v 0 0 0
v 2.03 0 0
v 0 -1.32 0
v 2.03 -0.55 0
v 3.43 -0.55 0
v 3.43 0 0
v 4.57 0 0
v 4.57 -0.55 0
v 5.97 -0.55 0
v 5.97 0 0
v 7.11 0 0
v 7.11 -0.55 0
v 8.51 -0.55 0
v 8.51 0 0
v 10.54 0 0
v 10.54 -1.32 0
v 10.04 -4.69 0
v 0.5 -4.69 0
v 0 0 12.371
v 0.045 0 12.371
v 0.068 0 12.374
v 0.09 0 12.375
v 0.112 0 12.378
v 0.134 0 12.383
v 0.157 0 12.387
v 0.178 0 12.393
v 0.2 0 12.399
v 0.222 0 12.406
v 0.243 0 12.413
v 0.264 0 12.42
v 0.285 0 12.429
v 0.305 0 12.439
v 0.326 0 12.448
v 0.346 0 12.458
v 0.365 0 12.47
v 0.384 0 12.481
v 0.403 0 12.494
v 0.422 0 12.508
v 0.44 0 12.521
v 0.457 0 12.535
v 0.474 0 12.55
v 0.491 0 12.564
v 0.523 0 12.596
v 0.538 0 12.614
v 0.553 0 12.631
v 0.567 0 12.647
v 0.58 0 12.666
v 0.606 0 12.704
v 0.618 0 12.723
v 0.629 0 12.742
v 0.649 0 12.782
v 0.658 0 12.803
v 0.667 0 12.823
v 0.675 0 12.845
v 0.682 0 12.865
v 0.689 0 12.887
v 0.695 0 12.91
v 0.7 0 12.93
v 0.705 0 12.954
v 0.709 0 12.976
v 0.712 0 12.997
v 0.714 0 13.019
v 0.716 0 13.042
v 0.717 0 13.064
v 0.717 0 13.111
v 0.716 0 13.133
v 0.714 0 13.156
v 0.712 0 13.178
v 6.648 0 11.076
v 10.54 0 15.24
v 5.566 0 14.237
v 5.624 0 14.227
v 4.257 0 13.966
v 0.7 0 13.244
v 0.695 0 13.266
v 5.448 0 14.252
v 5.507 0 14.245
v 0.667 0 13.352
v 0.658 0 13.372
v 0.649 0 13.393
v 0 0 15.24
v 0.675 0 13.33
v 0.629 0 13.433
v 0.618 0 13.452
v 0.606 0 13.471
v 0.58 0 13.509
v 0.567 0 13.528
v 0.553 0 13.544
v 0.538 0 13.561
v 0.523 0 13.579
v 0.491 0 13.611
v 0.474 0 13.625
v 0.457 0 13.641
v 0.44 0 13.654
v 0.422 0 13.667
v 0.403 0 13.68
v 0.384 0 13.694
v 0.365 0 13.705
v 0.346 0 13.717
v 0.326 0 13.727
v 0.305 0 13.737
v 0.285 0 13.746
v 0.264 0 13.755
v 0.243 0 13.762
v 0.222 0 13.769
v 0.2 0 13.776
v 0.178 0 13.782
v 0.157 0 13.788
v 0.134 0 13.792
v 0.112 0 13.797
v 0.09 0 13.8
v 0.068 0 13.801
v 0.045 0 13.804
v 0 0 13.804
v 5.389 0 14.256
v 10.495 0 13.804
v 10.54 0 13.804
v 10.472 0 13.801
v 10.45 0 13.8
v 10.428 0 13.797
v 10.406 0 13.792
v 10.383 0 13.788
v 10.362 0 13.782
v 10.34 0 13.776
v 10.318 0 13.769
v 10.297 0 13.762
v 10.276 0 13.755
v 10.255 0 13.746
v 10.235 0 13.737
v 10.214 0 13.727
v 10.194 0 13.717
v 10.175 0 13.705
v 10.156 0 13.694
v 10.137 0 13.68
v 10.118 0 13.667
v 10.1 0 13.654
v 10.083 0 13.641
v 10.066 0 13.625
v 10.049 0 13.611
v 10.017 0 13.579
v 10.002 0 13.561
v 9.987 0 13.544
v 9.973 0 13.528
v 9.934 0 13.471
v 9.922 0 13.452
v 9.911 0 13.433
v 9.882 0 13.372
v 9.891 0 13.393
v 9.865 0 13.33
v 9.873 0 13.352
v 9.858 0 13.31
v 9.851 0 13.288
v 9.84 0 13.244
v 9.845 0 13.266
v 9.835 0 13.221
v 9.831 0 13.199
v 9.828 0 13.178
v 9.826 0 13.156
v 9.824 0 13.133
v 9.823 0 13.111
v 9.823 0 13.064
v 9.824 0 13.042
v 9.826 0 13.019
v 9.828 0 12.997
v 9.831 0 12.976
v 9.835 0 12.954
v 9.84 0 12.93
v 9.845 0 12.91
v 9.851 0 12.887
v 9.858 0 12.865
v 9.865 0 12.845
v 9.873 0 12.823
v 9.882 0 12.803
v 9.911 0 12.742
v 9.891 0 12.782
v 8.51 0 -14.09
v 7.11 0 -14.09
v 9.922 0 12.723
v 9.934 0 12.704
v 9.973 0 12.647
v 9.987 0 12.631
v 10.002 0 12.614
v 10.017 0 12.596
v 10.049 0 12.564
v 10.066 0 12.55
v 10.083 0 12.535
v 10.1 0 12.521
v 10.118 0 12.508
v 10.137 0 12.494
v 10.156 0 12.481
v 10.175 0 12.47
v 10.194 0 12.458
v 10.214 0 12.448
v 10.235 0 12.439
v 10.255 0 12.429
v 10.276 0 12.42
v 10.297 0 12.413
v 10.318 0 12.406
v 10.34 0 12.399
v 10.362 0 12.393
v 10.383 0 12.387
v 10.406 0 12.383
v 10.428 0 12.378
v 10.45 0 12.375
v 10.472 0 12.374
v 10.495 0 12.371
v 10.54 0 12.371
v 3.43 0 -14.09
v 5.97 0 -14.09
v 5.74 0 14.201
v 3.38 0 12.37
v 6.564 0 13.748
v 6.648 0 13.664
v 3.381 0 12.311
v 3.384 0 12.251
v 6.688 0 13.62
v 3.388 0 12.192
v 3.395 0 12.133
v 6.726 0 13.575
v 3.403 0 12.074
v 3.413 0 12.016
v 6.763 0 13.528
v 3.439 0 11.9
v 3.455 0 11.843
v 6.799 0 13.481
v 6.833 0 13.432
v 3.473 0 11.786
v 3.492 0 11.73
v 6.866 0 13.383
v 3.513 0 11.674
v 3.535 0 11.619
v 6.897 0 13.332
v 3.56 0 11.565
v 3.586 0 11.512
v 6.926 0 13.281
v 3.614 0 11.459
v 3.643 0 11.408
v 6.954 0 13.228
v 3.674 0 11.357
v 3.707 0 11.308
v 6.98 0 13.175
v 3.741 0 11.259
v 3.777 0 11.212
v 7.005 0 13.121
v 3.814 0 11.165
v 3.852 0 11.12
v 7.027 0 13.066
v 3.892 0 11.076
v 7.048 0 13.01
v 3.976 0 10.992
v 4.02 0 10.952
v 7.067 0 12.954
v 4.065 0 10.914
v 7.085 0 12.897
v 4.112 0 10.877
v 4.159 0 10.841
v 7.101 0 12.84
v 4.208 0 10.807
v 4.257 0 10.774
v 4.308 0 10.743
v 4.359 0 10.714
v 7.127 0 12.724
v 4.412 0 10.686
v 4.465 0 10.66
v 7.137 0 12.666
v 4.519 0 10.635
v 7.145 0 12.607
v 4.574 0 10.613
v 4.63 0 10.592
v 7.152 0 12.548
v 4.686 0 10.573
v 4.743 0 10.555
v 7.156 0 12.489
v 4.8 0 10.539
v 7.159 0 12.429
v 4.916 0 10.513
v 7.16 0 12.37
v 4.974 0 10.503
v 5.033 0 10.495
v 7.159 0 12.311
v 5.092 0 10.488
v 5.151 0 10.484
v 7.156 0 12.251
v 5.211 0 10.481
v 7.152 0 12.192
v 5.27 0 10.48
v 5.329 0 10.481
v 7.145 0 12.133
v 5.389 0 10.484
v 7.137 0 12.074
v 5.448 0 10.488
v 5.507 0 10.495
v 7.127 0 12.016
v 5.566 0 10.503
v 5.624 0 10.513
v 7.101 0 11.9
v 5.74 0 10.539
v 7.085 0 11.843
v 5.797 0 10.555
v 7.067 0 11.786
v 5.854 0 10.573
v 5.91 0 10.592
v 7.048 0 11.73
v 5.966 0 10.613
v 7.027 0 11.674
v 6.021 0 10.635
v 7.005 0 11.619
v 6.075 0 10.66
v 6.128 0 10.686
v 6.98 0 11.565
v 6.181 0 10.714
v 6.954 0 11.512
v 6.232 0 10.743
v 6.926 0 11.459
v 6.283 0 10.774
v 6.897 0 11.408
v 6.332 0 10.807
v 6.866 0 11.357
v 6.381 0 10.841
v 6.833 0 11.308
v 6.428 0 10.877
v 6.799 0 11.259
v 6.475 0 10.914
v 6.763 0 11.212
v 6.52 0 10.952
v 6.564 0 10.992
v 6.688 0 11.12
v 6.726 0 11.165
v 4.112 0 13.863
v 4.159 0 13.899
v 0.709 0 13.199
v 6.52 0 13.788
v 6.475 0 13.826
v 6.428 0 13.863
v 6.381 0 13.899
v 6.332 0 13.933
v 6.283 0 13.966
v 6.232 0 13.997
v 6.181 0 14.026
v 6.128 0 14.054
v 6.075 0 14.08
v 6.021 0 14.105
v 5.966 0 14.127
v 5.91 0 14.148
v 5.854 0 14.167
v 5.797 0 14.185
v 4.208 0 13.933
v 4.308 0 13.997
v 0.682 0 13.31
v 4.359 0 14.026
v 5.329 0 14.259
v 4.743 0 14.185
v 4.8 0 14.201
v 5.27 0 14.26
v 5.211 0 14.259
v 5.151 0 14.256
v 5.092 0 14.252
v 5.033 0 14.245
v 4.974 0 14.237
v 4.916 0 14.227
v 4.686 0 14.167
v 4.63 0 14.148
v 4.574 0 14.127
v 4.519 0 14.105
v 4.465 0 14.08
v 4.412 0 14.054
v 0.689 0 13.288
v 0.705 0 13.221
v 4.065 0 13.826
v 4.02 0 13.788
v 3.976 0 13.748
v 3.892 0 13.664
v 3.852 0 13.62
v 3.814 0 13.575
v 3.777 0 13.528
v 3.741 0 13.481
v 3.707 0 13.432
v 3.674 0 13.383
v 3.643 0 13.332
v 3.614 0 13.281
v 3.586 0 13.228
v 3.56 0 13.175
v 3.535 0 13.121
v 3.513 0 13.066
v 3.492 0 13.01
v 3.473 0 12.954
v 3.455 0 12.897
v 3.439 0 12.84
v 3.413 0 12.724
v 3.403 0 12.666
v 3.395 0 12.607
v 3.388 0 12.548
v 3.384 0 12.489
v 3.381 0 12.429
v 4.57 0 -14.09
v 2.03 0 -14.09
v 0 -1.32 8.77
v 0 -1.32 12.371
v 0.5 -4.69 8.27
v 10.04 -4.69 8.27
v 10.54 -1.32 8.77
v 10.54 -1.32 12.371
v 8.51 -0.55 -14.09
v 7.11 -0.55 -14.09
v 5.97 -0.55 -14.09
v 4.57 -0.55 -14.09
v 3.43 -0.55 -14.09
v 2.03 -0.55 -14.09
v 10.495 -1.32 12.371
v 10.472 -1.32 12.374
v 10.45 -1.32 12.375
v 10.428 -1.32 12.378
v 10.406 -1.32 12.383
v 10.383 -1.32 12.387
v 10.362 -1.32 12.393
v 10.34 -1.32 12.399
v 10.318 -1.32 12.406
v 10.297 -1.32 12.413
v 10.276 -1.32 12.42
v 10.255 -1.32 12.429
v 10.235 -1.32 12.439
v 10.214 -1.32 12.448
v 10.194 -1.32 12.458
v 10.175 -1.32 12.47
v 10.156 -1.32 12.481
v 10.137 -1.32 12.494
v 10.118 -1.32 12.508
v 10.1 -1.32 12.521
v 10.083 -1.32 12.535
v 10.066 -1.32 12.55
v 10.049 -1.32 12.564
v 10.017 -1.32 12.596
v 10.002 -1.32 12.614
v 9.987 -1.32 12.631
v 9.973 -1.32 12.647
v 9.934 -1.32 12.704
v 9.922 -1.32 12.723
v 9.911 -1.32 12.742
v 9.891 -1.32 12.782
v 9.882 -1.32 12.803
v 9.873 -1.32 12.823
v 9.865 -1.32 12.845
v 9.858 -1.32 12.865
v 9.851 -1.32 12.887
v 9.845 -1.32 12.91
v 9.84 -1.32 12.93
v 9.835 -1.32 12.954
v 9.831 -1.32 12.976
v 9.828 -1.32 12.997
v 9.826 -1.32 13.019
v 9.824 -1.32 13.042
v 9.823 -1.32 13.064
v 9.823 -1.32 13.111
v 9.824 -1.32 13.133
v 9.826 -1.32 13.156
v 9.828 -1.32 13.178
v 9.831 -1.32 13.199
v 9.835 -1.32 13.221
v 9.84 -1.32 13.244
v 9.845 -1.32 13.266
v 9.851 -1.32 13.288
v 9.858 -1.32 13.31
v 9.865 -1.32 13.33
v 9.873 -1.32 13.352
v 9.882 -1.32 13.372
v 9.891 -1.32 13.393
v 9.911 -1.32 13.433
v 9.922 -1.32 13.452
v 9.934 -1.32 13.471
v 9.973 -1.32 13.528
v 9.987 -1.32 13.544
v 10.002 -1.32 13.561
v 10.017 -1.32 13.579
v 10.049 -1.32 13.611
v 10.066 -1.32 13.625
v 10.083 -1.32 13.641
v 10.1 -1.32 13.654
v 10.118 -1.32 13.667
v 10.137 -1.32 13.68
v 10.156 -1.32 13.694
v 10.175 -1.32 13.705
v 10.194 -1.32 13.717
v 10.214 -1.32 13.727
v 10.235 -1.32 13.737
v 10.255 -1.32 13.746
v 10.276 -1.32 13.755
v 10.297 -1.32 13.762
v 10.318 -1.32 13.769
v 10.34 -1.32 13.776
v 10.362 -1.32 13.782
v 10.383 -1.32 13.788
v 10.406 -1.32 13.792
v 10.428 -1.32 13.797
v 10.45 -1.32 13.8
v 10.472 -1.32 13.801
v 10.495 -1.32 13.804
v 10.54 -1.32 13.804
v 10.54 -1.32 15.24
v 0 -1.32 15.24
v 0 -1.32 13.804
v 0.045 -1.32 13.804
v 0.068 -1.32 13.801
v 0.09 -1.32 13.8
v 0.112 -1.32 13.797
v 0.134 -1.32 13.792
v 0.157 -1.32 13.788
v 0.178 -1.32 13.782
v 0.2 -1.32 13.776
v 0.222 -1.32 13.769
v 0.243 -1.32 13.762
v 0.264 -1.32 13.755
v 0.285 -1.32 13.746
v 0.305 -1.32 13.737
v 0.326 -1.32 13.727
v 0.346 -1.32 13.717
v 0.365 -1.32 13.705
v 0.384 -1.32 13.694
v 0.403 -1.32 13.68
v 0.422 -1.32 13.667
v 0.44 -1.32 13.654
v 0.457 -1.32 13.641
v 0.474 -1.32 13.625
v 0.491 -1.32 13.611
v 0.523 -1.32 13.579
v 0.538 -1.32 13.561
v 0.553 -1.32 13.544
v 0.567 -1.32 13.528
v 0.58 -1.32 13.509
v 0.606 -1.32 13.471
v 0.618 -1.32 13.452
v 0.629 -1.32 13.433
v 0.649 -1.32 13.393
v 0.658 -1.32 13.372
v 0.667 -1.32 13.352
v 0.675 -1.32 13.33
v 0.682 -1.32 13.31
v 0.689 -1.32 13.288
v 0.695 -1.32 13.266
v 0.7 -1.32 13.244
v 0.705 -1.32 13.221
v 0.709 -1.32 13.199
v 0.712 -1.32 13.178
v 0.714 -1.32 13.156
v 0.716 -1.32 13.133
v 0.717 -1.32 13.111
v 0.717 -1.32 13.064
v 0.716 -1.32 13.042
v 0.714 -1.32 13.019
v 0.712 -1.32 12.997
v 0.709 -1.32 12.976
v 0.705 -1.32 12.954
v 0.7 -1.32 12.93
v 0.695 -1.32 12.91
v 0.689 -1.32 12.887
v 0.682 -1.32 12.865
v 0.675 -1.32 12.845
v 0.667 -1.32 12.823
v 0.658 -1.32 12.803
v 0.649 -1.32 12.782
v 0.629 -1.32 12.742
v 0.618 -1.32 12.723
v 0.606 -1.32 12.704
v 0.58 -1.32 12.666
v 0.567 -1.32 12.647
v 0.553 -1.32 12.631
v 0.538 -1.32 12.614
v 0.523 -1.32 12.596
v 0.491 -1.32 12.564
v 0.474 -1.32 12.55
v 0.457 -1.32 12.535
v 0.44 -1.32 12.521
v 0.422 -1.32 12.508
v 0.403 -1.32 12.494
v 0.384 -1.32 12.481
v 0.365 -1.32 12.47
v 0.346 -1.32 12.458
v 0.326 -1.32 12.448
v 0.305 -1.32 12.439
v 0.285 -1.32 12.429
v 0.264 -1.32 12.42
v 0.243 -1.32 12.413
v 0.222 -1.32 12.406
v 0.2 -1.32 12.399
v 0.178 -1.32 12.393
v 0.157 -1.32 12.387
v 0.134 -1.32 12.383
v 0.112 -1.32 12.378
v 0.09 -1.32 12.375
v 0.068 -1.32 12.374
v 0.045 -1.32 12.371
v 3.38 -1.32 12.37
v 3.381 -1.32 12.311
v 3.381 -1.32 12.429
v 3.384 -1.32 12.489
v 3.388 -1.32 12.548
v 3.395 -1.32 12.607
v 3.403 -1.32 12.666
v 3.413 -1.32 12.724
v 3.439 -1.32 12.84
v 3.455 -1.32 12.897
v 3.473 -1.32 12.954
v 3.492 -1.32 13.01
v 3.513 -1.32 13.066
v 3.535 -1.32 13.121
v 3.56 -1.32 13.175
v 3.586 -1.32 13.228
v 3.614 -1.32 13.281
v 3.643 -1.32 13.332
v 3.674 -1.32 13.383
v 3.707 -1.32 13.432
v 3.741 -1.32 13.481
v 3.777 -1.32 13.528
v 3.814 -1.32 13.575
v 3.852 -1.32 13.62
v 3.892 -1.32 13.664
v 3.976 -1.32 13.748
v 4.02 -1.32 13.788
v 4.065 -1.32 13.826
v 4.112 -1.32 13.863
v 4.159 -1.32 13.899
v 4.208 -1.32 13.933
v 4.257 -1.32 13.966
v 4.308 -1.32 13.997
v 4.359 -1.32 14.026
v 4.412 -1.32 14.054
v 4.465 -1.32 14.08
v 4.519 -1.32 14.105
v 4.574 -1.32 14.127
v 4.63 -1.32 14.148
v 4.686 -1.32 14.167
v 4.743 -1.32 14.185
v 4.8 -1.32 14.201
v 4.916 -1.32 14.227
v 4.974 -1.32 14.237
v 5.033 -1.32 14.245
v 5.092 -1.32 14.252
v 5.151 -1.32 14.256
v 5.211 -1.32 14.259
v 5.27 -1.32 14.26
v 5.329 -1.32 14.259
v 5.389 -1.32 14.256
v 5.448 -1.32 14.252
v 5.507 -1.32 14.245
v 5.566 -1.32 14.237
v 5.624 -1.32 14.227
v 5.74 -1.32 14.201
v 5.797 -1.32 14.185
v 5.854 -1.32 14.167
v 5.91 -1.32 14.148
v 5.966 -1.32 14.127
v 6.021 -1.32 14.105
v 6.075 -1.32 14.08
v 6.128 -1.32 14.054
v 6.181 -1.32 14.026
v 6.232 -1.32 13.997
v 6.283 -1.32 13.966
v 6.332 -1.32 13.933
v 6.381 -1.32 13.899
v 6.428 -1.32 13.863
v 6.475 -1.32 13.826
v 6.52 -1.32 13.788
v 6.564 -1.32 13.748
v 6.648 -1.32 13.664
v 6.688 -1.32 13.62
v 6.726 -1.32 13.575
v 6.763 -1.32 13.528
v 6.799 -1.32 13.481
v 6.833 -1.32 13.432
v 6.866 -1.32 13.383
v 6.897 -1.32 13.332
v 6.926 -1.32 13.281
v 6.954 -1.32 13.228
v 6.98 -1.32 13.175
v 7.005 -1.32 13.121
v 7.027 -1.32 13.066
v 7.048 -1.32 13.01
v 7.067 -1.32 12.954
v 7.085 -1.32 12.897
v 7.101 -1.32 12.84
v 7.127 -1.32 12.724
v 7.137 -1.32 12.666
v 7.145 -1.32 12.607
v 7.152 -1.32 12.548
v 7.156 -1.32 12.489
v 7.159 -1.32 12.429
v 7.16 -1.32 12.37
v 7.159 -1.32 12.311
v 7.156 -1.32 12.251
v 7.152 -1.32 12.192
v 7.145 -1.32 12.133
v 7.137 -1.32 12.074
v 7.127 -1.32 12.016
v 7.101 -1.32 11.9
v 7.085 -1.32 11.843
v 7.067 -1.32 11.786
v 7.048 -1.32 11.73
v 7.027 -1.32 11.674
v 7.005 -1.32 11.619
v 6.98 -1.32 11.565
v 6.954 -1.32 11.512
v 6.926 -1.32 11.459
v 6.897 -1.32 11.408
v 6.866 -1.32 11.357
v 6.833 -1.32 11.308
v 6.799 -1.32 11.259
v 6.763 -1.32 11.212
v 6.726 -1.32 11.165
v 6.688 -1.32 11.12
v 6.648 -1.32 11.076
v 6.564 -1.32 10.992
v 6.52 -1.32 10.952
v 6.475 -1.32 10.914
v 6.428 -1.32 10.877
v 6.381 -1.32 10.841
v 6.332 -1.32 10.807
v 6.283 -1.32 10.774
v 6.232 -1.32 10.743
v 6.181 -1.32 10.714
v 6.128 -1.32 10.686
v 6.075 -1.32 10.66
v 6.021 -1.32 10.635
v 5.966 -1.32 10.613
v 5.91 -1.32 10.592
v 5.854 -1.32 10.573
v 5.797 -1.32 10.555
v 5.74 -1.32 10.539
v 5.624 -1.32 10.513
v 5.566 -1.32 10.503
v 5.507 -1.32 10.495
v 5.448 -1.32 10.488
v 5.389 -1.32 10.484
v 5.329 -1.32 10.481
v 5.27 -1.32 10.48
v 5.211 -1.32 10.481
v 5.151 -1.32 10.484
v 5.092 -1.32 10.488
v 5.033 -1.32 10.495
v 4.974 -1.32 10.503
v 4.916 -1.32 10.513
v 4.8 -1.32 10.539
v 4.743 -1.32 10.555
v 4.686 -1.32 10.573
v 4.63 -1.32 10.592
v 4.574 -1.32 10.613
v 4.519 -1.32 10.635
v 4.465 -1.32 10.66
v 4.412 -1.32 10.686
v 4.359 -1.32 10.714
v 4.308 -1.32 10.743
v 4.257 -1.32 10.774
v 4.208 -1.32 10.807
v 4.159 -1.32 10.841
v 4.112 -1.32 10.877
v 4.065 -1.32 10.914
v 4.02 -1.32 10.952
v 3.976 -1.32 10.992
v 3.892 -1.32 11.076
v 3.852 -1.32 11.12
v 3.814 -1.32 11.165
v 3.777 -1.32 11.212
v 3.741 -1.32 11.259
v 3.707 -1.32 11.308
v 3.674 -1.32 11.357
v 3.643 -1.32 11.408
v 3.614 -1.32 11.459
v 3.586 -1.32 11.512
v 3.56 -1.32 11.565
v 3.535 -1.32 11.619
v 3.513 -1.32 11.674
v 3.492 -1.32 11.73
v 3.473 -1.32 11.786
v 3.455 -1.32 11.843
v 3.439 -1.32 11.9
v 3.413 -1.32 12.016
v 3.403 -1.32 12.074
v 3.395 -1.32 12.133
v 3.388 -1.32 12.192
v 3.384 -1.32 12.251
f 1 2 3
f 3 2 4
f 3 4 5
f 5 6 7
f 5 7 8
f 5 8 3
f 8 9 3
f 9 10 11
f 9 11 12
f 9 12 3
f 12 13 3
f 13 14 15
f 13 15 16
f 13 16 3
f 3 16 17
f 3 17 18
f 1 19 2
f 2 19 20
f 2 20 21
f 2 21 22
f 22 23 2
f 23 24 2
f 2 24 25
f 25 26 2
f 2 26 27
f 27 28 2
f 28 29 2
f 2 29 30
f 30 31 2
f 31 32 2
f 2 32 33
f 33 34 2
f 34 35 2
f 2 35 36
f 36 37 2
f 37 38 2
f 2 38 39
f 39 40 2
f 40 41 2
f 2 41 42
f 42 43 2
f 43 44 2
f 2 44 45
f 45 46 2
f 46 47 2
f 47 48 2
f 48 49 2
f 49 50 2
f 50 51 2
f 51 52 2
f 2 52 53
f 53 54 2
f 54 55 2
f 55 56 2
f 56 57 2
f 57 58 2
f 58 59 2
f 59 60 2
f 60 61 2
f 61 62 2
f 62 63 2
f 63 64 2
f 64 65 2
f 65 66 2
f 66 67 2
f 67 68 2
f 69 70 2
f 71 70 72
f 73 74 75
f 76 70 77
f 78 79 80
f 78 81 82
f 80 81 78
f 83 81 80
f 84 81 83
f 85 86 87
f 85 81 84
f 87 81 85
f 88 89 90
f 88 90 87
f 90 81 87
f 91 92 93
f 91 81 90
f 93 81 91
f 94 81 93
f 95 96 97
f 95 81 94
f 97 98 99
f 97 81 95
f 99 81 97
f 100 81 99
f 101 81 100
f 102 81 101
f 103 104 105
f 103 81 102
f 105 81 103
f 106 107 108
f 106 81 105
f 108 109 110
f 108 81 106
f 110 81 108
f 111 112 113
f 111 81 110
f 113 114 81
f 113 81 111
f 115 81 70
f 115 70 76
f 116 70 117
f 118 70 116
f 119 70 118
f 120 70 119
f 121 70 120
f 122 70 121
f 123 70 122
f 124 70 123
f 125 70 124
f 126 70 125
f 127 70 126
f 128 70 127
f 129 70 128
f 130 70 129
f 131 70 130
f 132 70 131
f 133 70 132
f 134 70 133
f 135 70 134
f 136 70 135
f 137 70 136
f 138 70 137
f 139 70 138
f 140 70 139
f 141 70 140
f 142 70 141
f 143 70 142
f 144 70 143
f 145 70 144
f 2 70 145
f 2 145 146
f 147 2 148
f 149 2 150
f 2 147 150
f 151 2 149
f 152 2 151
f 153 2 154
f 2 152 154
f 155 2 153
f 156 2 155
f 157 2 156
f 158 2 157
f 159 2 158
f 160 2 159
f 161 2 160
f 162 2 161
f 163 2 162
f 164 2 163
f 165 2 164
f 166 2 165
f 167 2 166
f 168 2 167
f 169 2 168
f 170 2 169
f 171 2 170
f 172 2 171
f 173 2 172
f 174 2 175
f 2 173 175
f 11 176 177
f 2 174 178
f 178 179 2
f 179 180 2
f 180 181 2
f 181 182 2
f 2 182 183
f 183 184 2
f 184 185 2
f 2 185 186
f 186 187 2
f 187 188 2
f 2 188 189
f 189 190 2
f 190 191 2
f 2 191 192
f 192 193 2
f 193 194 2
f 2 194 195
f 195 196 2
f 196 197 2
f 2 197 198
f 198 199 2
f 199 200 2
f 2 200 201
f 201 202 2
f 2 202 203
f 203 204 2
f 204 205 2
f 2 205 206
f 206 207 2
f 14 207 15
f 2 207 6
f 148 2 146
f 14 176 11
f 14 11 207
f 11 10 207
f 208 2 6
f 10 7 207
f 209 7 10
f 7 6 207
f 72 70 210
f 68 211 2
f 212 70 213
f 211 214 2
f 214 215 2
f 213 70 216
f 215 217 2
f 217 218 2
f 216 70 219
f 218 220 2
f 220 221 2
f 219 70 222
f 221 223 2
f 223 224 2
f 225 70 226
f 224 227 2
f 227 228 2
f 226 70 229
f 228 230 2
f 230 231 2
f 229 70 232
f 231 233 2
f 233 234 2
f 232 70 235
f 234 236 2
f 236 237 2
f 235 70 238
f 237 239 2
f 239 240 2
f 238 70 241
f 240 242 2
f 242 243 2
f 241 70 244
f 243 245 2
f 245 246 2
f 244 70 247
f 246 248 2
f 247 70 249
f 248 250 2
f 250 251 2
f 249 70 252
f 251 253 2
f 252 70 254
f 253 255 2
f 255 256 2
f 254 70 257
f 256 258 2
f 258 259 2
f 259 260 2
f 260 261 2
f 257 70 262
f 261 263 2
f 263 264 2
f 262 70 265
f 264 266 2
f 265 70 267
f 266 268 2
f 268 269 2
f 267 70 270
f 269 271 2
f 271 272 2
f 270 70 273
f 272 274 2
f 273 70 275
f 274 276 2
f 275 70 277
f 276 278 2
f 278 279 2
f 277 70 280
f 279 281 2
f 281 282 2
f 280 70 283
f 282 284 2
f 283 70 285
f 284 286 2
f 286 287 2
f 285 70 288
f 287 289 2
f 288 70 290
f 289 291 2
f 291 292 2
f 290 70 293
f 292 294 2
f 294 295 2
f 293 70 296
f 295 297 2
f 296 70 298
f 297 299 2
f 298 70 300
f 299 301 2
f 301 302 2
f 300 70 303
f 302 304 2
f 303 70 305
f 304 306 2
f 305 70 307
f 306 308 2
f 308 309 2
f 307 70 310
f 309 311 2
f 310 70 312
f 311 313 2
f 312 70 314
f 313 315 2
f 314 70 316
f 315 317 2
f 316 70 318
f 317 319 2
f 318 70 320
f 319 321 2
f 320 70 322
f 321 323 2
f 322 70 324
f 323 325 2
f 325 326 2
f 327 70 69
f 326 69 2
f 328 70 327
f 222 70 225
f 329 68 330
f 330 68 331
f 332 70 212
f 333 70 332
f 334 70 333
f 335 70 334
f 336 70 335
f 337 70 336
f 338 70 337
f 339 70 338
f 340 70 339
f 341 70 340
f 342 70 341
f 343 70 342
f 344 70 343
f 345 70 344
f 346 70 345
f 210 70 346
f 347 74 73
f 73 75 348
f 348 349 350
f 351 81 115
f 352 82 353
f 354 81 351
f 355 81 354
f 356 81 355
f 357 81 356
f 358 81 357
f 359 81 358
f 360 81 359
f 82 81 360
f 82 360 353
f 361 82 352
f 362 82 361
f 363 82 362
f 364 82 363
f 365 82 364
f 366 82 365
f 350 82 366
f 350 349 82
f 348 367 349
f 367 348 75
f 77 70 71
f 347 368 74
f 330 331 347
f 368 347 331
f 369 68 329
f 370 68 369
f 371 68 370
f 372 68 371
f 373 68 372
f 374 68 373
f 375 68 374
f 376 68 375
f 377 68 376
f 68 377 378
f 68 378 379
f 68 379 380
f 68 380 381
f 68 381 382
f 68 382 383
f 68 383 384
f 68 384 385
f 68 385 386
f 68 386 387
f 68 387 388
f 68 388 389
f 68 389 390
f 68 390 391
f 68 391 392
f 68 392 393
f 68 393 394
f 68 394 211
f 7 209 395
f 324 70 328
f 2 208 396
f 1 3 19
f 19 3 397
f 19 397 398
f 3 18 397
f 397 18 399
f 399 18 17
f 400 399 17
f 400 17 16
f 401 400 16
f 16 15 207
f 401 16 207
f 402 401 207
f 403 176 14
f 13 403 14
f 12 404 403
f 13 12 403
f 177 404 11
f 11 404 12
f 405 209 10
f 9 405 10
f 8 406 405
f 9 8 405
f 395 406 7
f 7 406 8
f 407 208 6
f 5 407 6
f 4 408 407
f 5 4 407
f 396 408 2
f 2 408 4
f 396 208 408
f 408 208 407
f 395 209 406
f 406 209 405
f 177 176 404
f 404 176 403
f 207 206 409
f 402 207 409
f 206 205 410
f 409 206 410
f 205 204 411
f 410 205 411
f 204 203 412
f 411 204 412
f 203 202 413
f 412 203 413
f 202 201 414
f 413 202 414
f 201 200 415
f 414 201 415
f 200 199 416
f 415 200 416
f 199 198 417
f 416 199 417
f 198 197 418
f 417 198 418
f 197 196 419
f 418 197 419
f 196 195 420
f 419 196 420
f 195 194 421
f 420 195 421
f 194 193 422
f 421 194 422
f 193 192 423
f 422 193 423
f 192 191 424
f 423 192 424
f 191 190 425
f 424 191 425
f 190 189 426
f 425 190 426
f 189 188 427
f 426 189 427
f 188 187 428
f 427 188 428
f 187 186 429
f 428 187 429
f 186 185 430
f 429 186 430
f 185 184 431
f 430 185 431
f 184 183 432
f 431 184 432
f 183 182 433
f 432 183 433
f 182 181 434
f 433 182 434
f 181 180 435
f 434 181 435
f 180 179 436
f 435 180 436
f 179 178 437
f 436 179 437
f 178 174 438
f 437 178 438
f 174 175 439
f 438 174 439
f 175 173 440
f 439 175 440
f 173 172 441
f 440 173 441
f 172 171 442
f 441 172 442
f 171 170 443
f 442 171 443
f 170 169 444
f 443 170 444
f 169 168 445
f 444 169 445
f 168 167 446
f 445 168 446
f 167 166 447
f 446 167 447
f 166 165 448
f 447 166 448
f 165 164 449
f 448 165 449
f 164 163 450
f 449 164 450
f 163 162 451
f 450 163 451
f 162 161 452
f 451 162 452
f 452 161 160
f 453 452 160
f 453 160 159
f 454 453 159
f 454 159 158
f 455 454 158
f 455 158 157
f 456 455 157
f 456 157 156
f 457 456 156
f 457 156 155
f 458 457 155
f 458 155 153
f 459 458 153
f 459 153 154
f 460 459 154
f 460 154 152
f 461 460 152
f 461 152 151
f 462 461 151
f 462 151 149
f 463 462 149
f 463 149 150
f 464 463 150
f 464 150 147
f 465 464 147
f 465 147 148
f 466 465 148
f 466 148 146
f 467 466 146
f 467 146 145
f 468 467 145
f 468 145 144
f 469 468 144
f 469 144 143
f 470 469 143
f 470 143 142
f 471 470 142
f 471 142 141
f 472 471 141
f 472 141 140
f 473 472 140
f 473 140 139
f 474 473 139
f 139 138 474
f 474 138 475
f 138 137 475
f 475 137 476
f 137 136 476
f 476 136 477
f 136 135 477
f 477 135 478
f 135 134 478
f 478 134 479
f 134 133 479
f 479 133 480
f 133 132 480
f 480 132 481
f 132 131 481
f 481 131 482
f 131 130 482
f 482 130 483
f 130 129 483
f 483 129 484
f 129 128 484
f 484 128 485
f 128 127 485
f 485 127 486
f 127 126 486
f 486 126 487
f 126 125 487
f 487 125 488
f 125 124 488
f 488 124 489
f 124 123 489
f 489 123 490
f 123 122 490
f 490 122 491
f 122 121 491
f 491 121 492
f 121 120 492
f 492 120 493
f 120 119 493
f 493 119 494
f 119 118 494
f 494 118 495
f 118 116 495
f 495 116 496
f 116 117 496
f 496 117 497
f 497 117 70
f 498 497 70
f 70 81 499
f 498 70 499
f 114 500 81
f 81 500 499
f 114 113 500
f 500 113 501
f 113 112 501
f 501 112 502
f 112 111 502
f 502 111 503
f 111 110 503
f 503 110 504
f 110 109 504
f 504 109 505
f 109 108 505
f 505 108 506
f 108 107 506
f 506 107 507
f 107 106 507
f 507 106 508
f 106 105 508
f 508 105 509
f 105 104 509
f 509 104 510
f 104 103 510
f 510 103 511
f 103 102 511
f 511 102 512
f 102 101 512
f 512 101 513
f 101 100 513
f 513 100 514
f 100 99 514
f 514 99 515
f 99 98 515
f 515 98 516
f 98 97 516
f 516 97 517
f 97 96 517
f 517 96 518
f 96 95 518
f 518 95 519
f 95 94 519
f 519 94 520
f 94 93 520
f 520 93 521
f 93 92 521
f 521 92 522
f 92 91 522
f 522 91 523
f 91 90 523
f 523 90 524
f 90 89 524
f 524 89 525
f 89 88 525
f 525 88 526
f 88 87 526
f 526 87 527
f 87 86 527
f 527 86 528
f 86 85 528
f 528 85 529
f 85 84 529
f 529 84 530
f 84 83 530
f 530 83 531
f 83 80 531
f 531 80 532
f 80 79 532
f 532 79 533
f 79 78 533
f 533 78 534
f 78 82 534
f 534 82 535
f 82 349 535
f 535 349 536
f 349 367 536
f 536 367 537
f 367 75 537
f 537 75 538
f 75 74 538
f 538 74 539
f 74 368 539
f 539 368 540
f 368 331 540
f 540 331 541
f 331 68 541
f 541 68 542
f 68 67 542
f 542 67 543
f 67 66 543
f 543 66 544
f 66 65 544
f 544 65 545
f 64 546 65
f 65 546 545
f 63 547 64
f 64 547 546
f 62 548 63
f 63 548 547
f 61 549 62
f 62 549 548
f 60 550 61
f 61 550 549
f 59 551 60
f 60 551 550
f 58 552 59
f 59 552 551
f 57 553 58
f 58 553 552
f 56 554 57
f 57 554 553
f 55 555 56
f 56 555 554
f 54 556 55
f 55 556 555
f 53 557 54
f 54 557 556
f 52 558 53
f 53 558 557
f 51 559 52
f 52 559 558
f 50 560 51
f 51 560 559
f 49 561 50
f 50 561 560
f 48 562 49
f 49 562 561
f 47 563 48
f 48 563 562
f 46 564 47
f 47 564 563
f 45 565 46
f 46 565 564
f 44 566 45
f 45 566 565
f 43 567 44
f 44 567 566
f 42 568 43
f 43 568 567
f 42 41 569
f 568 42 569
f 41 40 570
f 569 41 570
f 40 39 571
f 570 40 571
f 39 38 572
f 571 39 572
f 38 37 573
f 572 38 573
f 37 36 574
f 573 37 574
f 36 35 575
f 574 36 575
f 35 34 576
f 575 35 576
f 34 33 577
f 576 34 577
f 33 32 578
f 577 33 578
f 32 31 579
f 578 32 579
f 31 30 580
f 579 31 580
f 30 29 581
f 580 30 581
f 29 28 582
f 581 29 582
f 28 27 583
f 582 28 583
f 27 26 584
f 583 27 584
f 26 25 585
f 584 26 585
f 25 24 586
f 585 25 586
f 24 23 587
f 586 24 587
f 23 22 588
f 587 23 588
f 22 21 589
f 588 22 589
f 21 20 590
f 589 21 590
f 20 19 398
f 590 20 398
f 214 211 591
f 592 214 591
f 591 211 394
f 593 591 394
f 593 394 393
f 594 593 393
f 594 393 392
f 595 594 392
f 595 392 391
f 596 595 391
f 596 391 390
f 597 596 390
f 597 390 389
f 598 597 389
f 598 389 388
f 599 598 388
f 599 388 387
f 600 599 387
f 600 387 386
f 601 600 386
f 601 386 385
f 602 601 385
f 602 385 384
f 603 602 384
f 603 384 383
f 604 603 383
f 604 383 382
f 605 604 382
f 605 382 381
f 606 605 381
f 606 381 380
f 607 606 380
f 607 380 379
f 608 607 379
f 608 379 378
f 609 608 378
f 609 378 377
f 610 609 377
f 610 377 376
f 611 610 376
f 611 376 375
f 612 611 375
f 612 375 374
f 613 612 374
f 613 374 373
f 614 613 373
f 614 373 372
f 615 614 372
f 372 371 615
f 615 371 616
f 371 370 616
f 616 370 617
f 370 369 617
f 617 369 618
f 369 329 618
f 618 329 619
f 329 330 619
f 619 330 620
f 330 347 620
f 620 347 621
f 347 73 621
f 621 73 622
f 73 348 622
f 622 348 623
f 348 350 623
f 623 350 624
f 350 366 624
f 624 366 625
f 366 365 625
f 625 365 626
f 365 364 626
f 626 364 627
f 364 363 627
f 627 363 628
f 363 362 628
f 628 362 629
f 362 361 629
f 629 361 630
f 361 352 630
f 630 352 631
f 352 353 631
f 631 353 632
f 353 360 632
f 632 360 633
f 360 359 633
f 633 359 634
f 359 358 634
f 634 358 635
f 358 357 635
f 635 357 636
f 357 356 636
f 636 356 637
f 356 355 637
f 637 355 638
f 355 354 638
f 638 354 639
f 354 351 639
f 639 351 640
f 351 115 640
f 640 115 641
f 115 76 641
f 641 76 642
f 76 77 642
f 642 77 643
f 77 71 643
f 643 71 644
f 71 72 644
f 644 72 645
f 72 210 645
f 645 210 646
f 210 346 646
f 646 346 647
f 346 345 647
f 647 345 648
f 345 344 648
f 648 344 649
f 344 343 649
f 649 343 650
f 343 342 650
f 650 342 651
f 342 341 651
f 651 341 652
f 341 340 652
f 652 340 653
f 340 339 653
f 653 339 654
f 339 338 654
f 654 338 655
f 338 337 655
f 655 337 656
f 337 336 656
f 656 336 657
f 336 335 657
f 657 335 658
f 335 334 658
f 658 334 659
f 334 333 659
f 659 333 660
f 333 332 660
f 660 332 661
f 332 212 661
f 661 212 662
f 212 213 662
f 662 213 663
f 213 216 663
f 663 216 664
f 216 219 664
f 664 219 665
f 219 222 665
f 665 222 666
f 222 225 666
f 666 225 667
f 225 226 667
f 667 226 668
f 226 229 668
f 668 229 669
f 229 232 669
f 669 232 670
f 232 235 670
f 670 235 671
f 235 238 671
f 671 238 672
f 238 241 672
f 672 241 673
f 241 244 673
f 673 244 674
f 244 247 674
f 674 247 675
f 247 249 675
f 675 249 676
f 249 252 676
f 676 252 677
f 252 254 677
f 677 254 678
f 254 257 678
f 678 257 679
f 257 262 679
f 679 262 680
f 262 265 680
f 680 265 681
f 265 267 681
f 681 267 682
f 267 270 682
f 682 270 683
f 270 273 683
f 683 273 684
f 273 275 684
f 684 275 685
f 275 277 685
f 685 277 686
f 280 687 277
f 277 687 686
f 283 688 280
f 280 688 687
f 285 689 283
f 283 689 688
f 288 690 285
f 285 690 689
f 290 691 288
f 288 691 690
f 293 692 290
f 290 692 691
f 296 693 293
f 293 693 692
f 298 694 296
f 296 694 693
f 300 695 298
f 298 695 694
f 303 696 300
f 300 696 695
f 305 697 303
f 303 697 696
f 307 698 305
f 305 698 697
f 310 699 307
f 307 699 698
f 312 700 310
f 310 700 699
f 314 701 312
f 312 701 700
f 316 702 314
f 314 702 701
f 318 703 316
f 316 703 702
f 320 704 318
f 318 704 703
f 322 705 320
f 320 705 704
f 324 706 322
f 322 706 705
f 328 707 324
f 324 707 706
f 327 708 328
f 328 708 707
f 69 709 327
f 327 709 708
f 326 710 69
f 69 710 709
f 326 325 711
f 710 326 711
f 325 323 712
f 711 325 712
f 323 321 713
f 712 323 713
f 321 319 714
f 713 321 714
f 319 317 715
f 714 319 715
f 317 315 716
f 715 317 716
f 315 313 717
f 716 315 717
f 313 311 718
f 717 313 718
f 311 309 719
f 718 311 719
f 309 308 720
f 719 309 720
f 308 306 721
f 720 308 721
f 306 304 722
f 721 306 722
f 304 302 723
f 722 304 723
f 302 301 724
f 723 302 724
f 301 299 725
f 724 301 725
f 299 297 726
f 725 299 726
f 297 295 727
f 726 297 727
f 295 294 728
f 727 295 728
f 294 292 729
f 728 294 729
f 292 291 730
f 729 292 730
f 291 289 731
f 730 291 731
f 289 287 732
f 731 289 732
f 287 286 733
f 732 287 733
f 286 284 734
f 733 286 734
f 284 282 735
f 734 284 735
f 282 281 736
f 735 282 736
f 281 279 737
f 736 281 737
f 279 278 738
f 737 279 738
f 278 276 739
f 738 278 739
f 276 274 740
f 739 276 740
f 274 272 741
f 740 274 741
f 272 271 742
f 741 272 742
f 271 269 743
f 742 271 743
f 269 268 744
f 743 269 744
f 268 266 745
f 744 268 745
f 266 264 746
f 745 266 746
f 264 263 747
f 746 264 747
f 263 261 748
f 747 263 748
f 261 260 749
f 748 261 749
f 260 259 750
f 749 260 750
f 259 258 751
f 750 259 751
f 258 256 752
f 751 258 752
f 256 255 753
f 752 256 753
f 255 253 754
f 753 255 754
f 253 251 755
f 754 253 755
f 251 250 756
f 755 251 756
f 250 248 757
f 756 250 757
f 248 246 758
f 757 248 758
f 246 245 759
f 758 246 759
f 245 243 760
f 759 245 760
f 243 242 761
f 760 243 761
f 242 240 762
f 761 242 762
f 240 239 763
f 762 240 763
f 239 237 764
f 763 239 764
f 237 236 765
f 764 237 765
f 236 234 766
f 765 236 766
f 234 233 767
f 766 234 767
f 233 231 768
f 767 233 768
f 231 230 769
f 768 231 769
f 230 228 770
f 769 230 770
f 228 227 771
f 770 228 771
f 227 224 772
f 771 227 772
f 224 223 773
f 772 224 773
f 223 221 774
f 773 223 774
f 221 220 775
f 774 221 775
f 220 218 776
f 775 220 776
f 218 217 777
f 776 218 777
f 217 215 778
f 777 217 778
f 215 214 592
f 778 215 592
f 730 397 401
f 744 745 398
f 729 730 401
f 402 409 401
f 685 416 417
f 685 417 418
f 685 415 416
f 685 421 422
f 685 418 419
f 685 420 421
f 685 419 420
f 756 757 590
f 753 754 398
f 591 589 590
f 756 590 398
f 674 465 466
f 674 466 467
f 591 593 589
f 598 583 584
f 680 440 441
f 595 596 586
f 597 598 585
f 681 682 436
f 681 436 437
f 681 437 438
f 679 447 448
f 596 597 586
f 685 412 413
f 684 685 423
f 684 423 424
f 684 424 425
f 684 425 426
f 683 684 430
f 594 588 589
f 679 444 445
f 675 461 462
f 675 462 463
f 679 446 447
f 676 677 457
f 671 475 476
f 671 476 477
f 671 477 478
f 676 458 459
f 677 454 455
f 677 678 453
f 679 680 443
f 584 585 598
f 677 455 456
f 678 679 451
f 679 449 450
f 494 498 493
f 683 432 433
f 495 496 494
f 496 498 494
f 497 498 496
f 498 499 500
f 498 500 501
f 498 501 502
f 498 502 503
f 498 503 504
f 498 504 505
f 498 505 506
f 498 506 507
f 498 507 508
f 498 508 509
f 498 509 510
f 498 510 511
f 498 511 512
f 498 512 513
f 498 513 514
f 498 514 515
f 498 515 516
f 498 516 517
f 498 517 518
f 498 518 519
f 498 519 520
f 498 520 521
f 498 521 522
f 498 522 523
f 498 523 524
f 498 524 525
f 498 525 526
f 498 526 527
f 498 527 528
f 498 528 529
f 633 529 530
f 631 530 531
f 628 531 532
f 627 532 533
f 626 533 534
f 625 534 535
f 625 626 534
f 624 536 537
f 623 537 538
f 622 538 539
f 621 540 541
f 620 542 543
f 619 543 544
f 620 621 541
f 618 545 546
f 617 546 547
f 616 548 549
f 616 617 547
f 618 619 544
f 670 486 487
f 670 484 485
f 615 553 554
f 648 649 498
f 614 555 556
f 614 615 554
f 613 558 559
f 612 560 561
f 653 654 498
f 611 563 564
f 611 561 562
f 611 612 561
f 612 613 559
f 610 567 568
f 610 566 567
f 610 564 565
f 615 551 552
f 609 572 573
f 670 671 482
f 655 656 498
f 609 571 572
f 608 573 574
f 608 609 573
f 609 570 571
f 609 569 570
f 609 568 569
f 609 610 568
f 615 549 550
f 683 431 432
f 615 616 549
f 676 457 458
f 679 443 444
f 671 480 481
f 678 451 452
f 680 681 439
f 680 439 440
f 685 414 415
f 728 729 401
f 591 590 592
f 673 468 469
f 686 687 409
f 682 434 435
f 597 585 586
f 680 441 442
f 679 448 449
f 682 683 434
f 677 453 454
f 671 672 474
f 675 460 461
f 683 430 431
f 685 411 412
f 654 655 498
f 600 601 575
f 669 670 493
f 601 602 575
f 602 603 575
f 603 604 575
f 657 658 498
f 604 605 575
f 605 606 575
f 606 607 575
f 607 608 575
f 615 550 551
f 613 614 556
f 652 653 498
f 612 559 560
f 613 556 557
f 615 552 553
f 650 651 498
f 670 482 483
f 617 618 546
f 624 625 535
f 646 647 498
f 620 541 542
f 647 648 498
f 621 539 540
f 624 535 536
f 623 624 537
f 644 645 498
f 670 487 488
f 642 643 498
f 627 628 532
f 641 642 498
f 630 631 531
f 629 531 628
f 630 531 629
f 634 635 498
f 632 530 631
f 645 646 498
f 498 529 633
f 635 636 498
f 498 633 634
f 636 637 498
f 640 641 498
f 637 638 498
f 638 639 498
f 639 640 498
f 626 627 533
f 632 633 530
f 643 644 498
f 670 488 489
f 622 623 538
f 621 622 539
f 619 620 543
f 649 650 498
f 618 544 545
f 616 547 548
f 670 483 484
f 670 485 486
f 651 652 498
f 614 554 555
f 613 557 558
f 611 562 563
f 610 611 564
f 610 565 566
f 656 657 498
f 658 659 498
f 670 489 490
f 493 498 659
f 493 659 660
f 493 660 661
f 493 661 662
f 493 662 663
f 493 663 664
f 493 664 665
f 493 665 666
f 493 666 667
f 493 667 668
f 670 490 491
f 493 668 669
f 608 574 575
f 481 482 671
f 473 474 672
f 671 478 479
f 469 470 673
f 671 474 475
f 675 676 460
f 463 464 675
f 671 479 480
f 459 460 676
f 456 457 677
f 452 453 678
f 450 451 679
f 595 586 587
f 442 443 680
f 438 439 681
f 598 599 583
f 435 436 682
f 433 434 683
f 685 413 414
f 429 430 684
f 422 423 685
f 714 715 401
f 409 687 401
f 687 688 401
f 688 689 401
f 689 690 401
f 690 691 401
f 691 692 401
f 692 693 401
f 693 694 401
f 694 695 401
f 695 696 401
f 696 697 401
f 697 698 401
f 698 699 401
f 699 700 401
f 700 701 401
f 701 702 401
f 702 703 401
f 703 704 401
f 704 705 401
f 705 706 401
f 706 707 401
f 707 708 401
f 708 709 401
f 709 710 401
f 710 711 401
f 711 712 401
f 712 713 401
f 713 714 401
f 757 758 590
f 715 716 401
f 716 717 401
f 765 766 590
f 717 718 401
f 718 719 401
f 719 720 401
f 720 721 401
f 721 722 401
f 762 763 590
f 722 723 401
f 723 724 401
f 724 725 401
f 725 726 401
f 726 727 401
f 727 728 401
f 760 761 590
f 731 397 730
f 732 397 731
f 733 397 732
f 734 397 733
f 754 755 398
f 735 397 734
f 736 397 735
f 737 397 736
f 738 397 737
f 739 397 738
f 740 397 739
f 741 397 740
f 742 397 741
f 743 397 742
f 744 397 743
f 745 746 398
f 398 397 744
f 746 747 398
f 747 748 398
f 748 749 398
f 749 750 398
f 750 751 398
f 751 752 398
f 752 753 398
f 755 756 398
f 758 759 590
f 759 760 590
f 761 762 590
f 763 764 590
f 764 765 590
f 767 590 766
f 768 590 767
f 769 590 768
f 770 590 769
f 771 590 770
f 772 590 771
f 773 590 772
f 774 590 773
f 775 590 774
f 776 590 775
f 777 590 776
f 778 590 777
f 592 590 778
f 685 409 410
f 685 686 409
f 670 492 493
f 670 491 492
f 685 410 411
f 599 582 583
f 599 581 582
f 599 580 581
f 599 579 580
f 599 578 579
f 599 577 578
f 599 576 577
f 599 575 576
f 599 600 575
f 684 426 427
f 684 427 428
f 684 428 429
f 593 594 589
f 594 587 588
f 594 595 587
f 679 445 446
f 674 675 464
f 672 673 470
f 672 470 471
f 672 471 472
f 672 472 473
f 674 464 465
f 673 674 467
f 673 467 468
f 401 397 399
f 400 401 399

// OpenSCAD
width = 10.54;
height2 = 15.24;
height1 = height2 - 6.47;
depth = 4.69;
indent = 0.5;
pin_length = 14.09;
metal_thickness = 1.32;

module metal() {
	small_circle_radius = 2.87 / 2 / 2;

	linear_extrude(height=metal_thickness) {
		difference() {
			square([10.54,height2]);
			translate([5.27,height2-2.87]) circle(3.78/2, $fn=200);
			translate([0,height2-2.87+small_circle_radius]) circle(small_circle_radius, $fn=200);
			translate([width,height2-2.87+small_circle_radius]) circle(small_circle_radius, $fn=200);
		};
	};
};

module casing() {
	polyhedron(
		points=[
			// Back
			[0,0,metal_thickness],[0,height1,metal_thickness],
			[width,height1,metal_thickness],[width,0,metal_thickness],
			// Front
			[0+indent,0,depth],[0+indent,height1-indent,depth],
			[width-indent,height1-indent,depth],[width-indent,0,depth]
		],
		faces=[[0,3,2,1],[4,5,6,7],[0,1,5,4],[1,2,6,5],[3,7,6,2],[0,4,7,3]]
	);
};

module pins() {
	pin_width = 1.4;
	center = (width / 2) - (pin_width / 2);
	distance = 2.54;

	translate([center-distance,-pin_length,0]) cube([pin_width,pin_length,0.55]);
	translate([center,-pin_length,0]) cube([pin_width,pin_length,0.55]);
	translate([center+distance,-pin_length,0]) cube([pin_width,pin_length,0.55]);
};

module everything() {
	union() {
		metal();
		casing();
		pins();
	};
};


rotate(a=[90,0,0]) everything();
